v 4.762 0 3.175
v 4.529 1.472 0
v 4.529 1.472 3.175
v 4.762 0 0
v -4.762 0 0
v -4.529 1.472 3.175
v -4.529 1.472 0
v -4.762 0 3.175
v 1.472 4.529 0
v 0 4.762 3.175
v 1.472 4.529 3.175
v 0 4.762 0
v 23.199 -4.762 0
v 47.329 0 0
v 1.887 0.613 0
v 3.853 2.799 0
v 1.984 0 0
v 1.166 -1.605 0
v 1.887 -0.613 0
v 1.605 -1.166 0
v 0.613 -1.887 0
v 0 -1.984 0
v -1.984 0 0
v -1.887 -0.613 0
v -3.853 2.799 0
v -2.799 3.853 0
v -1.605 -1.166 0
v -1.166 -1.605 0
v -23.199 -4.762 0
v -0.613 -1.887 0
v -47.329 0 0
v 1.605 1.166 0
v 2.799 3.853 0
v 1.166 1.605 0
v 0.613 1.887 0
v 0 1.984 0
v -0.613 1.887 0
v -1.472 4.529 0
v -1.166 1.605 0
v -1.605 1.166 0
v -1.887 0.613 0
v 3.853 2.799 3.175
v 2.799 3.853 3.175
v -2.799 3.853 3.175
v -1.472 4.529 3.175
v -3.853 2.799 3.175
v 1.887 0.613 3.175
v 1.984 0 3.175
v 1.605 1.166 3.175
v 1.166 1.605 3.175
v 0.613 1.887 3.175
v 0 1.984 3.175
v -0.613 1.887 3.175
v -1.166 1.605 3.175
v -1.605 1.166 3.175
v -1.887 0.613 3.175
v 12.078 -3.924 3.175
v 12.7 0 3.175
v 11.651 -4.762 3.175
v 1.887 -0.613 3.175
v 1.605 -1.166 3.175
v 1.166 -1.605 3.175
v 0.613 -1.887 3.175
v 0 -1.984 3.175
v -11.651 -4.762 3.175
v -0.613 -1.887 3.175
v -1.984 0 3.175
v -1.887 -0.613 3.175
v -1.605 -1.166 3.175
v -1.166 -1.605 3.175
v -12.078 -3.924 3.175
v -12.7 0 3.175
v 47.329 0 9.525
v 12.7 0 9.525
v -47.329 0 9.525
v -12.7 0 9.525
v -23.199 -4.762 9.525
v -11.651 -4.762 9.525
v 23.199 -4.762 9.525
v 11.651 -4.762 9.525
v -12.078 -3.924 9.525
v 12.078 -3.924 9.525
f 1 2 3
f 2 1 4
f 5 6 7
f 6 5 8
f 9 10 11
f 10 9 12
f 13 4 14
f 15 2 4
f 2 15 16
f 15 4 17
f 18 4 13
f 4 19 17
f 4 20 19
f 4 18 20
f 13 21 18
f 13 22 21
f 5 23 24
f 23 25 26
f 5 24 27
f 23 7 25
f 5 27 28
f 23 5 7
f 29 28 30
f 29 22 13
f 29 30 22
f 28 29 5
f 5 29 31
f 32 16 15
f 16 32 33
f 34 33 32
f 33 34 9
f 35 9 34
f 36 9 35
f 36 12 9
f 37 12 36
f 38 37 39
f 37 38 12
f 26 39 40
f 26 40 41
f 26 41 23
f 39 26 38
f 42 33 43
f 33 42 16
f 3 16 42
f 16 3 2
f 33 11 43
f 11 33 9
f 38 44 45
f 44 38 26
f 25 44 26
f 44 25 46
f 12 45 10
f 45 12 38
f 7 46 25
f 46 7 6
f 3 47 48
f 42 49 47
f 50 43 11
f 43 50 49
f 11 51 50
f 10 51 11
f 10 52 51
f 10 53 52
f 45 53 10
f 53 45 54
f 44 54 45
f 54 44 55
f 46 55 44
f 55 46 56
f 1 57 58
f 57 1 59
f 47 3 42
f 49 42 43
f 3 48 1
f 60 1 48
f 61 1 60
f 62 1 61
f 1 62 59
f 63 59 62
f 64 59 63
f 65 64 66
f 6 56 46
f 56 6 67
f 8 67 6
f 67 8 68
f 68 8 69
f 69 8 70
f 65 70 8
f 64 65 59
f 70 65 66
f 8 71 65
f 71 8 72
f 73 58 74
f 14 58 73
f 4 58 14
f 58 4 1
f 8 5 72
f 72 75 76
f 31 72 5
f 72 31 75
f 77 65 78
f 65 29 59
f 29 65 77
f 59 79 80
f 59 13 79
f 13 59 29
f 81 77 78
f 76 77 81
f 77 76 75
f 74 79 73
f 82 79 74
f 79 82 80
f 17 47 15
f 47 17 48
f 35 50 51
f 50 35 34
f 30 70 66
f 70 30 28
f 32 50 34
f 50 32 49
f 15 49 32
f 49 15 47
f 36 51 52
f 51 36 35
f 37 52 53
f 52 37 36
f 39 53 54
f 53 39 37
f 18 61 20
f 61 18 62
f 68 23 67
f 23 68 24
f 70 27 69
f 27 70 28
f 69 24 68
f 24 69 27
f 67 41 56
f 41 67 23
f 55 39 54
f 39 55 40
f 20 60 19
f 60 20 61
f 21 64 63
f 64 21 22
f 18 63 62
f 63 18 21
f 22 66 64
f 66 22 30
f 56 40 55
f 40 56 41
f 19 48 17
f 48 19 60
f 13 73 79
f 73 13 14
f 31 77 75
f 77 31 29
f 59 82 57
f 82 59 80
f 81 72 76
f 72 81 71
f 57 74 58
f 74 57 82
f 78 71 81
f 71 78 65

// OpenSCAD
/* Pointer for astrolabe 
 * Copyright (c) 2019 Michael Robinson
 * 
 * This work is licensed under the Creative Commons Attribution 4.0
 *   International License. 
 * To view a copy of this license, visit
 *   http://creativecommons.org/licenses/by/4.0/ 
 */
 
module pointer(hole_diameter, boss_diameter, inner_thickness,  outer_thickness, rete_thickness, rete_diameter, astrolabe_diameter) {
    difference(){
        union(){
            translate([0,0,rete_thickness]) cylinder(d1=boss_diameter,d2=boss_diameter,h=inner_thickness);
            translate([0,-boss_diameter/4,rete_thickness+inner_thickness/2]) cube([astrolabe_diameter,boss_diameter/2,inner_thickness],center=true);
            translate([0,-boss_diameter/4,(outer_thickness+rete_thickness)/2]) cube([astrolabe_diameter,boss_diameter/2,outer_thickness+rete_thickness],center=true);
        }
        union(){
            translate([0,0,rete_thickness/2]) cylinder(d1=hole_diameter,d2=hole_diameter,h=outer_thickness);
            translate([astrolabe_diameter/4,-boss_diameter*1.5,-outer_thickness]) rotate(atan2(boss_diameter*2,astrolabe_diameter)) cube([astrolabe_diameter*1.5,boss_diameter,(outer_thickness+rete_thickness)*3]);
            translate([-astrolabe_diameter/4,-boss_diameter*1.5,-outer_thickness]) mirror([1,0,0]) rotate(atan2(boss_diameter*2,astrolabe_diameter)) cube([astrolabe_diameter*1.5,boss_diameter,(outer_thickness+rete_thickness)*3]);
            translate([0,0,inner_thickness]) cylinder(d1=rete_diameter,d2=rete_diameter,h=outer_thickness);
        }
    }
}
 
$fn=20;
scale(25.4) pointer( 0.15625, 0.375, 0.125, 0.375, 0, 1, 3.8);
